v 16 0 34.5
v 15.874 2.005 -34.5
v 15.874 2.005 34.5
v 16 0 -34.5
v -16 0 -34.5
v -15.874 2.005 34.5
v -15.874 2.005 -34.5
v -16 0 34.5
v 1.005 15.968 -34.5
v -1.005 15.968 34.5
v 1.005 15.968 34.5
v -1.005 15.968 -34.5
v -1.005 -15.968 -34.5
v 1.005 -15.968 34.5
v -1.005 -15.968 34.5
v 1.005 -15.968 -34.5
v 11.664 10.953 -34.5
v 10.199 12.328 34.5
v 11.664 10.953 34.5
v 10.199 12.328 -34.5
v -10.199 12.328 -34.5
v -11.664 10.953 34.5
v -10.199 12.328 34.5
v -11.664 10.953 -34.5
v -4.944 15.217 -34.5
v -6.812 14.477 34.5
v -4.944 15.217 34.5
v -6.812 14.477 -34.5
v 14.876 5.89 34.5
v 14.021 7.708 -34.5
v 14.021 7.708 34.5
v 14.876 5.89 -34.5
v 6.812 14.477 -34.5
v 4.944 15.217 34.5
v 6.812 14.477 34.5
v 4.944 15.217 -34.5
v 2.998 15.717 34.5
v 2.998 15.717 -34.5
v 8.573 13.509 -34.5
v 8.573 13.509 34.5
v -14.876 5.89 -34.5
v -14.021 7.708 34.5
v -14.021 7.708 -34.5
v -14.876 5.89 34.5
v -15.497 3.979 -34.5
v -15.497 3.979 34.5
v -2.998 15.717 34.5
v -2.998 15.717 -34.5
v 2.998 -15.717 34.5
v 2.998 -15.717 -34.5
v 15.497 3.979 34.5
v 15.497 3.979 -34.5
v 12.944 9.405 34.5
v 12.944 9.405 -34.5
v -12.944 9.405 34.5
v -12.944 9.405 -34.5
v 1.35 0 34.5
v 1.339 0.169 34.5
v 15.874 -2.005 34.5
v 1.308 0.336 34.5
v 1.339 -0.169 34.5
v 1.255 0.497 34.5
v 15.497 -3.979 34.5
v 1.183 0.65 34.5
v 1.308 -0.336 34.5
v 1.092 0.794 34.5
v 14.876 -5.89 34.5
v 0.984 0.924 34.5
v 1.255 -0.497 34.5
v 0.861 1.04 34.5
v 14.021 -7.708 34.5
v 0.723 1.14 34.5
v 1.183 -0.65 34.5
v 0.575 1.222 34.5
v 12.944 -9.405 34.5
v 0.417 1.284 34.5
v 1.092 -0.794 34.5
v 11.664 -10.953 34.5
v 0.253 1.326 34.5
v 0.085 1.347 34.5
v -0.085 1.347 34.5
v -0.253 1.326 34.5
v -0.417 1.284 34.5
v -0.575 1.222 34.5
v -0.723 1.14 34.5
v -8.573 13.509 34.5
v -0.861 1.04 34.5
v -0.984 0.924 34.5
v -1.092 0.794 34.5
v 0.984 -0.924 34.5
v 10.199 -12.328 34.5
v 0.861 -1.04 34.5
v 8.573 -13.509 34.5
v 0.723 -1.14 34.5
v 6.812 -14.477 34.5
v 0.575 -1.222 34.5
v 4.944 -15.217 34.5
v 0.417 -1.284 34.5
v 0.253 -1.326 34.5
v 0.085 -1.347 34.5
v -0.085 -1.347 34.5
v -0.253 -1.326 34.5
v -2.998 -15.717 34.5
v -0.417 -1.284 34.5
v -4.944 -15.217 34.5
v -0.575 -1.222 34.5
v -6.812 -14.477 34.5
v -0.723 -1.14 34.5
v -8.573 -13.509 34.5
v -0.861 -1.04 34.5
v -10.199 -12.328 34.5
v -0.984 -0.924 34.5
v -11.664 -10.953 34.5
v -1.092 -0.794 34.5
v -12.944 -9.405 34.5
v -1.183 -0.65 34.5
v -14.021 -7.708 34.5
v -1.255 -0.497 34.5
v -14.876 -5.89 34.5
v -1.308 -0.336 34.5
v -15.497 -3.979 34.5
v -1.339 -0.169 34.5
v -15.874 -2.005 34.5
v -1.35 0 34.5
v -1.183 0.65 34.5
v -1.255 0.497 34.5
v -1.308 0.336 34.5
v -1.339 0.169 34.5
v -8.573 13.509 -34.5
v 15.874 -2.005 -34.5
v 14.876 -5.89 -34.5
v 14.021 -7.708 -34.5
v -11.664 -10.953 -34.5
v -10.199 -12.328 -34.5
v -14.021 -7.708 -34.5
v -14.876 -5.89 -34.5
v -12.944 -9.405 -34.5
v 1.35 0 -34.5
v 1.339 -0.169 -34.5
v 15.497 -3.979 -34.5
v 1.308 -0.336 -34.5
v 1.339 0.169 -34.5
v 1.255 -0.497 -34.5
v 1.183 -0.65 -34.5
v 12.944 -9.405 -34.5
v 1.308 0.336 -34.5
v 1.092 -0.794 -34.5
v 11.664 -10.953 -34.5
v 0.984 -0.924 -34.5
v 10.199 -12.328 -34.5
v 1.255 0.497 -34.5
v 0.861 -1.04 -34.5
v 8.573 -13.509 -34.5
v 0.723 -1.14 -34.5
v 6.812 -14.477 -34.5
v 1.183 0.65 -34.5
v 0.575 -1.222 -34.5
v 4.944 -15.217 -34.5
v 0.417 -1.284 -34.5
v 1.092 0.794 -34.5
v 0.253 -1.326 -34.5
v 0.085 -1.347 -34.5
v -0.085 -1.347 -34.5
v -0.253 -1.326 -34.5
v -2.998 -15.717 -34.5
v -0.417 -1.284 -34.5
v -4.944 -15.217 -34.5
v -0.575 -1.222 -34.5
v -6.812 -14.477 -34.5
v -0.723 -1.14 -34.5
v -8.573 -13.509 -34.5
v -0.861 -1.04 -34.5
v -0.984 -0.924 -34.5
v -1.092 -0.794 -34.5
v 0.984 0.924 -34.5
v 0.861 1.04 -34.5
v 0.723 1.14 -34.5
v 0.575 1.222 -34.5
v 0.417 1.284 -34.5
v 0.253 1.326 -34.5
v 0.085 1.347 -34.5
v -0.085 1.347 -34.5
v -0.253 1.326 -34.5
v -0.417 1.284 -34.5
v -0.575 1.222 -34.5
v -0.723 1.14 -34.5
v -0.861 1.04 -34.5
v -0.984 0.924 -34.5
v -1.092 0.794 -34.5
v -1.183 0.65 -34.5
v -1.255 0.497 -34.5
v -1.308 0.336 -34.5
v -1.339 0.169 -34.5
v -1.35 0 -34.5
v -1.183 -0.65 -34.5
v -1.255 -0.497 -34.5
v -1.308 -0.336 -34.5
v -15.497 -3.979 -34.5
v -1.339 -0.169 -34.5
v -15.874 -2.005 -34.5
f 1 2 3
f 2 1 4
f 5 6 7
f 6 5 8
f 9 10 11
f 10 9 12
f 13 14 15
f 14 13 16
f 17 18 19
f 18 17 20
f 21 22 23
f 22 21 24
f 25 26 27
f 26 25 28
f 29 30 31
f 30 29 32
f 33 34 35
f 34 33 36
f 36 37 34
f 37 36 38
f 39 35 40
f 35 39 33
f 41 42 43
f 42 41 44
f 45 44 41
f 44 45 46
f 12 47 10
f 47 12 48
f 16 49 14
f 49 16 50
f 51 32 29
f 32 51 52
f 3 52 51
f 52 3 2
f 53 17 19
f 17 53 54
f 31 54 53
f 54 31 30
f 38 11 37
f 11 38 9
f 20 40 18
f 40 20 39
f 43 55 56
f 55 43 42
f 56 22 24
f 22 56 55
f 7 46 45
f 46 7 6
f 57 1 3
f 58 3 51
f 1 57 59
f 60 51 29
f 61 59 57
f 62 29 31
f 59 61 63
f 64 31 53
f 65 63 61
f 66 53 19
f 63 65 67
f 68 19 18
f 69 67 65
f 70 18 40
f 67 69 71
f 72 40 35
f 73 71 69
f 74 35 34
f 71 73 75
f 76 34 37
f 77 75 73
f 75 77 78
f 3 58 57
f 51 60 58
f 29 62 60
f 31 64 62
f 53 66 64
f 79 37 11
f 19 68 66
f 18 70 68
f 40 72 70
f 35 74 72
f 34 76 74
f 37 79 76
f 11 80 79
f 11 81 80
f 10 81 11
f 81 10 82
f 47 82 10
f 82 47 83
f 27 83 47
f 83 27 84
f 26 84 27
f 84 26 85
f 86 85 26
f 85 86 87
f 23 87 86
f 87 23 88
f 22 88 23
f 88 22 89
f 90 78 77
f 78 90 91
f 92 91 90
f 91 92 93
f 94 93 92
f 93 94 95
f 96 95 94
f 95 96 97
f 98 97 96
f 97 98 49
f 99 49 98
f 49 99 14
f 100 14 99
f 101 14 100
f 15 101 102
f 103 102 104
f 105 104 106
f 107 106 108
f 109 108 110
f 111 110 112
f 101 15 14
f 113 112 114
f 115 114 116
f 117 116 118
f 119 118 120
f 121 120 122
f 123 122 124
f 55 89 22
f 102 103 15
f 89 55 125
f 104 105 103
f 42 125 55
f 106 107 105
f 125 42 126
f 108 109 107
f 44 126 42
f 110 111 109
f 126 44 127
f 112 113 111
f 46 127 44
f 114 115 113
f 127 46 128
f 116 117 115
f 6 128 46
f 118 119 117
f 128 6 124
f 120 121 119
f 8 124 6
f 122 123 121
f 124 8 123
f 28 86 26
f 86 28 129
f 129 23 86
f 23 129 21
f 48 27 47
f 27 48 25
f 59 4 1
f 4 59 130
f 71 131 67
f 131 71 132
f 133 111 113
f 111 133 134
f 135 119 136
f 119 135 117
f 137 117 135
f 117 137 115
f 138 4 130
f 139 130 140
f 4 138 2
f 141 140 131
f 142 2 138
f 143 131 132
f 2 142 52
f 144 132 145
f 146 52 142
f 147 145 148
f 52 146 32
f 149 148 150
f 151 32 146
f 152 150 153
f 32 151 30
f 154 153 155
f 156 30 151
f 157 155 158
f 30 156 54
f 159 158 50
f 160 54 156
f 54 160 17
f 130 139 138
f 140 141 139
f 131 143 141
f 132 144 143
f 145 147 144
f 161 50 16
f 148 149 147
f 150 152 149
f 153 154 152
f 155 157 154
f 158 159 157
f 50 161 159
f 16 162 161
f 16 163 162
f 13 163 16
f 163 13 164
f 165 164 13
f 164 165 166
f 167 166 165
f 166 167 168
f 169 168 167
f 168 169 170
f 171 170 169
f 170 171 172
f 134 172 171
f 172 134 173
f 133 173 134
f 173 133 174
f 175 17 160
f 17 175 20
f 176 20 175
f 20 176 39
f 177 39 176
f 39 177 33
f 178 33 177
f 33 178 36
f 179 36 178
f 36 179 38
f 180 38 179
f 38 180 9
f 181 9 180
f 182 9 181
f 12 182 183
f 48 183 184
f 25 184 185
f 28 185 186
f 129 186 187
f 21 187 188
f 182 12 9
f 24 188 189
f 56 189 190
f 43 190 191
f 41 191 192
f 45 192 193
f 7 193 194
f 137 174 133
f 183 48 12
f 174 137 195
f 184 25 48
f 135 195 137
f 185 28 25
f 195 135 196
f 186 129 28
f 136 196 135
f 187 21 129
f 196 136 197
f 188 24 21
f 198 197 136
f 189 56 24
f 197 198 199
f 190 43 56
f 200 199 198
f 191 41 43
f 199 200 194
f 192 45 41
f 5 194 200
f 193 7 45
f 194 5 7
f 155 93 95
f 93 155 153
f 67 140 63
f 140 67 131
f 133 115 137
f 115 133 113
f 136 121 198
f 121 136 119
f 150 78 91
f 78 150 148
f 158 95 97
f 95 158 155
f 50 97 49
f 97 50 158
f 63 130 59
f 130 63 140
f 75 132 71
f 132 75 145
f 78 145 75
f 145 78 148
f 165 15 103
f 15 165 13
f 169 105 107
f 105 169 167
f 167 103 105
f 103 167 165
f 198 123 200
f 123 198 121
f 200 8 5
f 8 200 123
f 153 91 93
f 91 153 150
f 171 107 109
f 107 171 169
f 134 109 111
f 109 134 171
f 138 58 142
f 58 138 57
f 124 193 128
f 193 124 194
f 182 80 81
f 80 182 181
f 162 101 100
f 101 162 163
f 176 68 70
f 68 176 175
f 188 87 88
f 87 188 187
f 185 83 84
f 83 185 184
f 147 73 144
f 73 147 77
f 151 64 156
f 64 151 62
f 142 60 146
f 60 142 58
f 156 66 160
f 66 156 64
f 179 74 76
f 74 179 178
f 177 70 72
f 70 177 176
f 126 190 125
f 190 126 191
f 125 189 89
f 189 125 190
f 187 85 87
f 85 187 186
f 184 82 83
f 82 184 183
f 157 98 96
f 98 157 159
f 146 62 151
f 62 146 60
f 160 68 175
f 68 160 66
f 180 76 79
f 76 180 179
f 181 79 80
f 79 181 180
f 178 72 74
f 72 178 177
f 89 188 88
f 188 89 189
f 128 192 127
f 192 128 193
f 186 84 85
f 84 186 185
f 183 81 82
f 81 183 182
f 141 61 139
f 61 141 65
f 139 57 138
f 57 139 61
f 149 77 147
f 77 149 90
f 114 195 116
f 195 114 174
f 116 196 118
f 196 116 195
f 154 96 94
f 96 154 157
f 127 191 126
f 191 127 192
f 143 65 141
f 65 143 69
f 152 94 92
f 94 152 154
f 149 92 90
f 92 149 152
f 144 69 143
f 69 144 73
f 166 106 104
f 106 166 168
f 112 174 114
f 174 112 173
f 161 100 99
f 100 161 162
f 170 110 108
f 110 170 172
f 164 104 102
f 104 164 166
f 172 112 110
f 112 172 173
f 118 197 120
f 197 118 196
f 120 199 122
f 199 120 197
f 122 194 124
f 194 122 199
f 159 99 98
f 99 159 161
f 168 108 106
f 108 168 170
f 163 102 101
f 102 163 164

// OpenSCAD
$fn = 50;


difference() {
	union() {
		translate(v = [0, 0, -34.5000000000]) {
			cylinder(h = 69, r = 16.0000000000);
		}
	}
	union() {
		translate(v = [0, 0, -100.0000000000]) {
			cylinder(h = 200, r = 1.3500000000);
		}
	}
}
